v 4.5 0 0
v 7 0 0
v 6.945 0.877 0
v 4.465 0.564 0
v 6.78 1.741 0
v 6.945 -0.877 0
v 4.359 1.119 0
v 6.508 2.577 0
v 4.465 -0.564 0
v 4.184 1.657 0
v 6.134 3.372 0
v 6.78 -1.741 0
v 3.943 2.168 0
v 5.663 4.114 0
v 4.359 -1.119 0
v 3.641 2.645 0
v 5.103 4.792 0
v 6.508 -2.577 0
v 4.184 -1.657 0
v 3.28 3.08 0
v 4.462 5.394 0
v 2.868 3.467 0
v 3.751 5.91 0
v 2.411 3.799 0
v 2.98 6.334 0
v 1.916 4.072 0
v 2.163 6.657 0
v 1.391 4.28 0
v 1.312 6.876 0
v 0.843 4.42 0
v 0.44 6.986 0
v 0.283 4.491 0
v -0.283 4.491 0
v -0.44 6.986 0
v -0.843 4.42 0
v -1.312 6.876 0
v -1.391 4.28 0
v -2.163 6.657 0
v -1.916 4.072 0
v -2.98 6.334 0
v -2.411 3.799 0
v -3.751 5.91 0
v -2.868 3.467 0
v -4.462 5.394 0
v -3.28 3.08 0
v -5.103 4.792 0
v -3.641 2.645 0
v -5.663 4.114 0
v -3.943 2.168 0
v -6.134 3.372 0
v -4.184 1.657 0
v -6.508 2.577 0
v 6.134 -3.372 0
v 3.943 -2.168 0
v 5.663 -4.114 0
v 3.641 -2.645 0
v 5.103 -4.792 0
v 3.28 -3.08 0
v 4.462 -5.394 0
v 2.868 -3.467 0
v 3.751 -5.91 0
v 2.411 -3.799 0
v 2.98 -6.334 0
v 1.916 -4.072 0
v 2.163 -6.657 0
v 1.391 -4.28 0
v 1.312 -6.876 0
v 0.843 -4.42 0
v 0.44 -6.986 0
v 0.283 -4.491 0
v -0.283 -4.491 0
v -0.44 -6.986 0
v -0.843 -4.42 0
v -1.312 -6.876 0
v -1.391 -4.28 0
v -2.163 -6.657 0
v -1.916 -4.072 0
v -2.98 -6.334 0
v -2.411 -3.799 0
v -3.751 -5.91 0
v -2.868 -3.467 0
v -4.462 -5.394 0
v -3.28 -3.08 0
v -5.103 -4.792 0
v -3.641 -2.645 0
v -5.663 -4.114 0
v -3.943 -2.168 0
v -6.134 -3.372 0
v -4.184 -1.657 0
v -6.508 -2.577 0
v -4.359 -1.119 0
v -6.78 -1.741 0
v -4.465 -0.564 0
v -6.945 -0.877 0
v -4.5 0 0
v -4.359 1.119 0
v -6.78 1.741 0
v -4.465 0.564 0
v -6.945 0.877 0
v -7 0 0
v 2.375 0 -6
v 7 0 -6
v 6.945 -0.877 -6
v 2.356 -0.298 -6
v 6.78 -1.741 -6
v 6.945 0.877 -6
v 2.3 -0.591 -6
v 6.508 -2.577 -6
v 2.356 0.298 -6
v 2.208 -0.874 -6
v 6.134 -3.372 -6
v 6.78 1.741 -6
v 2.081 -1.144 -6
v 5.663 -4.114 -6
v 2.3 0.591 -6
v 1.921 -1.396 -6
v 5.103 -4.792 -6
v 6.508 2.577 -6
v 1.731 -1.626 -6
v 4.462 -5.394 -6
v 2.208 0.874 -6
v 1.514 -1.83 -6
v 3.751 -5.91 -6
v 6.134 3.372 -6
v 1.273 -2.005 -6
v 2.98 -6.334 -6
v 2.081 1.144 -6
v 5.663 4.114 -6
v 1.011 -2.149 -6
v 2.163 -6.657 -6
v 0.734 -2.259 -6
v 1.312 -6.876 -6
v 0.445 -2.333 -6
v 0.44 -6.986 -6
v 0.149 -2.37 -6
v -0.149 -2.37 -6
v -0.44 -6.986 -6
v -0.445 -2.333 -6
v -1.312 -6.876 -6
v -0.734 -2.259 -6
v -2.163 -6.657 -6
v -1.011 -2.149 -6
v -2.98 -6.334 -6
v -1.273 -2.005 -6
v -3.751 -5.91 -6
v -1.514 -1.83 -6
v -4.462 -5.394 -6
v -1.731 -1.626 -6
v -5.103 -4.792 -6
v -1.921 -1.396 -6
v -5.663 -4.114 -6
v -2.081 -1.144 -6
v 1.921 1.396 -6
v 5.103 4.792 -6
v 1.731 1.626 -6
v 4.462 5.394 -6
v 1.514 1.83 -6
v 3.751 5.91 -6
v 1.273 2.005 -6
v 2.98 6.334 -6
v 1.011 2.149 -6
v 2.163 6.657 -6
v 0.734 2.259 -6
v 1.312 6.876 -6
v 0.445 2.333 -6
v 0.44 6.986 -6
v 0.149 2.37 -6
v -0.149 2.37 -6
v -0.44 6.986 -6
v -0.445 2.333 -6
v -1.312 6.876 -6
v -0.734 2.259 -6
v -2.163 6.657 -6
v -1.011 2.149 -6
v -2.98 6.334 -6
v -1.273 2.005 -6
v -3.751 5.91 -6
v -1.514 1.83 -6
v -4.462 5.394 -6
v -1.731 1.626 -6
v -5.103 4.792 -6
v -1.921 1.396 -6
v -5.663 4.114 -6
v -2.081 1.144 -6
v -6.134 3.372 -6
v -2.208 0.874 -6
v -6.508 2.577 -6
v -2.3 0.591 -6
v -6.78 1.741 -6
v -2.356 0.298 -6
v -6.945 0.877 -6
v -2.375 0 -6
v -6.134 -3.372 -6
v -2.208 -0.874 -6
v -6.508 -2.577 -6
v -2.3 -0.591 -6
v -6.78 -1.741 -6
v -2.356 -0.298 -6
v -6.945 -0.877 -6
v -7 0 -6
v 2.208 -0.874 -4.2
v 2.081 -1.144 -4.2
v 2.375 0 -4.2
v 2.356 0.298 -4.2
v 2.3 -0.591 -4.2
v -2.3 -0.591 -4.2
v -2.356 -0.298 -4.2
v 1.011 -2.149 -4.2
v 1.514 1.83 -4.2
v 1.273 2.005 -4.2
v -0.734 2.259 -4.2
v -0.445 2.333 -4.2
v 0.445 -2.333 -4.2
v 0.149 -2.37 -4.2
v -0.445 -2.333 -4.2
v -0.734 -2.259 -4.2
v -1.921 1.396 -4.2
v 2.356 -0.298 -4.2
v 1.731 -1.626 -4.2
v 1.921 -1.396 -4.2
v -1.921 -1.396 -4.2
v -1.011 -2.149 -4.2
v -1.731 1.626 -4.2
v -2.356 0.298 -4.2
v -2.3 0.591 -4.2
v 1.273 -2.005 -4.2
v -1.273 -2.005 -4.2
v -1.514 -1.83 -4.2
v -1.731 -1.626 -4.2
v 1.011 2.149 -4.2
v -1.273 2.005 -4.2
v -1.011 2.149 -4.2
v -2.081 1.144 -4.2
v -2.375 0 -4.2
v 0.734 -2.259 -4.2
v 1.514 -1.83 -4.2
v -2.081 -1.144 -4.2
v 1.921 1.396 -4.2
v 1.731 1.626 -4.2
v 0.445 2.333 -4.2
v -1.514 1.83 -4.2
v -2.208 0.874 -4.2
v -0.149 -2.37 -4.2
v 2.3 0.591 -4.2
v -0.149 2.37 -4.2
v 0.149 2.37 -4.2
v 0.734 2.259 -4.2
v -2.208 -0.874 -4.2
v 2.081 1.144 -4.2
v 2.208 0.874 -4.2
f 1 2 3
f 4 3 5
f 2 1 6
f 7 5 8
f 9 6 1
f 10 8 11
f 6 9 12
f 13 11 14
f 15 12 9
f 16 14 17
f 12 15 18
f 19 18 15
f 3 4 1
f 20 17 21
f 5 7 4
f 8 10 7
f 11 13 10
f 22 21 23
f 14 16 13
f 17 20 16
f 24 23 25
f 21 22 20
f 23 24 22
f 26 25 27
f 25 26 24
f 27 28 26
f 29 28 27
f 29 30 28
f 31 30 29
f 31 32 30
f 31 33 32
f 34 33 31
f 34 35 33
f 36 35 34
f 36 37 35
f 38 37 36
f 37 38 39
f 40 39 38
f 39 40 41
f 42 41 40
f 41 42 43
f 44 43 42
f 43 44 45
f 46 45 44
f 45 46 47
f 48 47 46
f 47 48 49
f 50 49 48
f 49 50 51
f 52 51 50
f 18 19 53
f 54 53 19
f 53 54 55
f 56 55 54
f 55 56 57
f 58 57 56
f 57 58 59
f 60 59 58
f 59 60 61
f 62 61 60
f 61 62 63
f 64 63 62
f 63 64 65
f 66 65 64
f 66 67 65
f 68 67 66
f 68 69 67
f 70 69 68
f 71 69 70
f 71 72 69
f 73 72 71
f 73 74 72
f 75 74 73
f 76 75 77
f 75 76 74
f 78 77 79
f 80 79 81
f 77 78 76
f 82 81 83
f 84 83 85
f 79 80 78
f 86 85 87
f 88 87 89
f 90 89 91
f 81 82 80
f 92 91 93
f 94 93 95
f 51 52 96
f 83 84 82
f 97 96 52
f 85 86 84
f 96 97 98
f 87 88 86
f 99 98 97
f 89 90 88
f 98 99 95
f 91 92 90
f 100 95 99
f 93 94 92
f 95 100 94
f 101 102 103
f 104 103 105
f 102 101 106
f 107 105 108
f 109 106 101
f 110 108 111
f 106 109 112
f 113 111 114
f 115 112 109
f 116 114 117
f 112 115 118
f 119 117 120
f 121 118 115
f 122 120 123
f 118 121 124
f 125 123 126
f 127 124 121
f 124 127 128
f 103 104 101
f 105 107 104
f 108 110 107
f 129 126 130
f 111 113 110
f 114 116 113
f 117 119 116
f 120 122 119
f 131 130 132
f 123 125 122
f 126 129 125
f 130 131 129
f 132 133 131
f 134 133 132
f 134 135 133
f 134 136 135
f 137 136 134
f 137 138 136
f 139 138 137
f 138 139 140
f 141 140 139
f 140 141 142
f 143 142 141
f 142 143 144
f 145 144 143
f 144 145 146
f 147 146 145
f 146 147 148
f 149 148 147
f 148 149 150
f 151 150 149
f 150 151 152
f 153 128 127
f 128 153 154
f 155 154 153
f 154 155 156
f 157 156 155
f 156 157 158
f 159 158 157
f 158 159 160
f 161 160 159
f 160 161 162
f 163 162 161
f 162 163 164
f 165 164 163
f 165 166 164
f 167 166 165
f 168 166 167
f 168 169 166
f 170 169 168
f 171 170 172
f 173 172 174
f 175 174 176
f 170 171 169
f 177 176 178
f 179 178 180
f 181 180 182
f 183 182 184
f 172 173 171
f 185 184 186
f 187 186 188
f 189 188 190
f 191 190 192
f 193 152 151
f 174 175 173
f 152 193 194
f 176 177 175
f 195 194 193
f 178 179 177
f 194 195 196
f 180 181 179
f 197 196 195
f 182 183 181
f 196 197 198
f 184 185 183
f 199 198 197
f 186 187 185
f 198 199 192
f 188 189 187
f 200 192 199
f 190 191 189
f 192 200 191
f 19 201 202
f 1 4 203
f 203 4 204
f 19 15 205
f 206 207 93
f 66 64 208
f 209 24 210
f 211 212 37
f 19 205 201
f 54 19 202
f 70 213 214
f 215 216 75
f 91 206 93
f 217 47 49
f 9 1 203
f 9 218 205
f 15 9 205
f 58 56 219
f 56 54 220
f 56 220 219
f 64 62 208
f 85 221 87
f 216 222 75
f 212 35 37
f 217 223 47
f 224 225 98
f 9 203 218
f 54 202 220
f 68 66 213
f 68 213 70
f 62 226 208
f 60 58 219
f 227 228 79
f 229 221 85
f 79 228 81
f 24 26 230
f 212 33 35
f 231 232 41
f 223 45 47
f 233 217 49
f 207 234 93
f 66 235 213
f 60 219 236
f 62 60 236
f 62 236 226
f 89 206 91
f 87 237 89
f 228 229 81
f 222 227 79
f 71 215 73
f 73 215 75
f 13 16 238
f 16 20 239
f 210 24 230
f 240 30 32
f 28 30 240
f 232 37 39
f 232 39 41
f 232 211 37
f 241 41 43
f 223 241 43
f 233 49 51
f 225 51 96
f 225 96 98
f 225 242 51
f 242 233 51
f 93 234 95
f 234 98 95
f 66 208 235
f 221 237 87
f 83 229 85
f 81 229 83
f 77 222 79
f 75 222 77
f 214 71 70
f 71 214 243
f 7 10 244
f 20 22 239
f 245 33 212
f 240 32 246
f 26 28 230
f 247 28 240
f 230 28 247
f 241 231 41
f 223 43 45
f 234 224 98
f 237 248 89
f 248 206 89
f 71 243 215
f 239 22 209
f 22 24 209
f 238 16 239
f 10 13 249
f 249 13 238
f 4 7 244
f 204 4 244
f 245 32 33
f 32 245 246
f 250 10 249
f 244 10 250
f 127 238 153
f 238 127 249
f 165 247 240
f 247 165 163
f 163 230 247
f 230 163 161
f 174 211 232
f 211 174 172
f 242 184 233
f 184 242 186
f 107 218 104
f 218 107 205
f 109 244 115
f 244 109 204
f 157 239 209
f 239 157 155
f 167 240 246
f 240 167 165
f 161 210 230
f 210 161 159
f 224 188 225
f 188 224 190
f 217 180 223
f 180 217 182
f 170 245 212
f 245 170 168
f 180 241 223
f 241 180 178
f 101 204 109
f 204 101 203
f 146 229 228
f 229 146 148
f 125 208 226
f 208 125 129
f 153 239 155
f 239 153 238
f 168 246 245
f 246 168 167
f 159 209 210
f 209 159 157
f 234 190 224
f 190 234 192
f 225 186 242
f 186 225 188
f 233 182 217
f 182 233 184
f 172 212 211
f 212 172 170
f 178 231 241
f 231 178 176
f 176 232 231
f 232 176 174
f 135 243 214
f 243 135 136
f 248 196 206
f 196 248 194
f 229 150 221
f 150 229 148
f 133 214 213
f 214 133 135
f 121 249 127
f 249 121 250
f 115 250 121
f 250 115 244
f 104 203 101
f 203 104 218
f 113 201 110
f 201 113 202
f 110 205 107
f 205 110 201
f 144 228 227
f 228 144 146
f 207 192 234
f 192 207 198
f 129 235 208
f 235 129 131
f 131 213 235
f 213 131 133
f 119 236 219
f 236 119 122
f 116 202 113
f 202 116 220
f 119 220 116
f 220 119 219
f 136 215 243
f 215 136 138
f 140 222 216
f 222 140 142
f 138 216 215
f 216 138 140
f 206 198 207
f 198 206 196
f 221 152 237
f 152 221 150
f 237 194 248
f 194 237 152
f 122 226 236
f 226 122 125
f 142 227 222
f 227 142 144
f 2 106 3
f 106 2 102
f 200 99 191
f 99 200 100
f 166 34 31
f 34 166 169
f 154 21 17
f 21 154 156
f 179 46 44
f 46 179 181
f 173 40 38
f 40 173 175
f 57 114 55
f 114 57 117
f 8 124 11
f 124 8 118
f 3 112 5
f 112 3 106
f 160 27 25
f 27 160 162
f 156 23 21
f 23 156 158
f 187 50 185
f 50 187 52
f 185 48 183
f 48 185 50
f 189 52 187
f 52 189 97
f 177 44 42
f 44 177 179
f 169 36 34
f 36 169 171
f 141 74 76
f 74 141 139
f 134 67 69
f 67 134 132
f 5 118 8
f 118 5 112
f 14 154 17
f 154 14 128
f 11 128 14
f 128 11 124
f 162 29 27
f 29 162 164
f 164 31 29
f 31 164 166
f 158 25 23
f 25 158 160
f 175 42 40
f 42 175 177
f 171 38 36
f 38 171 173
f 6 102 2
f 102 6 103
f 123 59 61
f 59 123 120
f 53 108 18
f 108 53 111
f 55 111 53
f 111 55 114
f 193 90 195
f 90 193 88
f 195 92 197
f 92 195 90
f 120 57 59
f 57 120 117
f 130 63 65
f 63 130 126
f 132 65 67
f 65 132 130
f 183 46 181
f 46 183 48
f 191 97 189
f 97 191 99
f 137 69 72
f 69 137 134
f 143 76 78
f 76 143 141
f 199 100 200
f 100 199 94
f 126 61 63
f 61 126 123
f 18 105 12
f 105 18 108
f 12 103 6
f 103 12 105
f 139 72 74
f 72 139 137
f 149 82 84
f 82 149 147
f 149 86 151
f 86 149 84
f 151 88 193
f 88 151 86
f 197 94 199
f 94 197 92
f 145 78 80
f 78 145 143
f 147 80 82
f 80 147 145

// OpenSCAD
$fn = 50;


difference() {
	union() {
		translate(v = [0, 0, -6.0000000000]) {
			cylinder(h = 6, r = 7.0000000000);
		}
		cylinder(h = 0, r = 10.0000000000);
	}
	union() {
		translate(v = [0, 0, 0]) {
			rotate(a = [0, 0, 0]) {
				difference() {
					union() {
						#translate(v = [0, 0, -6.0000000000]) {
							cylinder(h = 6, r = 2.2500000000);
						}
						#translate(v = [0, 0, -4.2000000000]) {
							cylinder(h = 4.2000000000, r = 7.0000000000, r1 = 2.3750000000, r2 = 4.5000000000);
						}
						#translate(v = [0, 0, -6.0000000000]) {
							cylinder(h = 6, r = 2.3750000000);
						}
						#translate(v = [0, 0, -6.0000000000]) {
							cylinder(h = 6, r = 2.2500000000);
						}
					}
					union();
				}
			}
		}
	}
}
